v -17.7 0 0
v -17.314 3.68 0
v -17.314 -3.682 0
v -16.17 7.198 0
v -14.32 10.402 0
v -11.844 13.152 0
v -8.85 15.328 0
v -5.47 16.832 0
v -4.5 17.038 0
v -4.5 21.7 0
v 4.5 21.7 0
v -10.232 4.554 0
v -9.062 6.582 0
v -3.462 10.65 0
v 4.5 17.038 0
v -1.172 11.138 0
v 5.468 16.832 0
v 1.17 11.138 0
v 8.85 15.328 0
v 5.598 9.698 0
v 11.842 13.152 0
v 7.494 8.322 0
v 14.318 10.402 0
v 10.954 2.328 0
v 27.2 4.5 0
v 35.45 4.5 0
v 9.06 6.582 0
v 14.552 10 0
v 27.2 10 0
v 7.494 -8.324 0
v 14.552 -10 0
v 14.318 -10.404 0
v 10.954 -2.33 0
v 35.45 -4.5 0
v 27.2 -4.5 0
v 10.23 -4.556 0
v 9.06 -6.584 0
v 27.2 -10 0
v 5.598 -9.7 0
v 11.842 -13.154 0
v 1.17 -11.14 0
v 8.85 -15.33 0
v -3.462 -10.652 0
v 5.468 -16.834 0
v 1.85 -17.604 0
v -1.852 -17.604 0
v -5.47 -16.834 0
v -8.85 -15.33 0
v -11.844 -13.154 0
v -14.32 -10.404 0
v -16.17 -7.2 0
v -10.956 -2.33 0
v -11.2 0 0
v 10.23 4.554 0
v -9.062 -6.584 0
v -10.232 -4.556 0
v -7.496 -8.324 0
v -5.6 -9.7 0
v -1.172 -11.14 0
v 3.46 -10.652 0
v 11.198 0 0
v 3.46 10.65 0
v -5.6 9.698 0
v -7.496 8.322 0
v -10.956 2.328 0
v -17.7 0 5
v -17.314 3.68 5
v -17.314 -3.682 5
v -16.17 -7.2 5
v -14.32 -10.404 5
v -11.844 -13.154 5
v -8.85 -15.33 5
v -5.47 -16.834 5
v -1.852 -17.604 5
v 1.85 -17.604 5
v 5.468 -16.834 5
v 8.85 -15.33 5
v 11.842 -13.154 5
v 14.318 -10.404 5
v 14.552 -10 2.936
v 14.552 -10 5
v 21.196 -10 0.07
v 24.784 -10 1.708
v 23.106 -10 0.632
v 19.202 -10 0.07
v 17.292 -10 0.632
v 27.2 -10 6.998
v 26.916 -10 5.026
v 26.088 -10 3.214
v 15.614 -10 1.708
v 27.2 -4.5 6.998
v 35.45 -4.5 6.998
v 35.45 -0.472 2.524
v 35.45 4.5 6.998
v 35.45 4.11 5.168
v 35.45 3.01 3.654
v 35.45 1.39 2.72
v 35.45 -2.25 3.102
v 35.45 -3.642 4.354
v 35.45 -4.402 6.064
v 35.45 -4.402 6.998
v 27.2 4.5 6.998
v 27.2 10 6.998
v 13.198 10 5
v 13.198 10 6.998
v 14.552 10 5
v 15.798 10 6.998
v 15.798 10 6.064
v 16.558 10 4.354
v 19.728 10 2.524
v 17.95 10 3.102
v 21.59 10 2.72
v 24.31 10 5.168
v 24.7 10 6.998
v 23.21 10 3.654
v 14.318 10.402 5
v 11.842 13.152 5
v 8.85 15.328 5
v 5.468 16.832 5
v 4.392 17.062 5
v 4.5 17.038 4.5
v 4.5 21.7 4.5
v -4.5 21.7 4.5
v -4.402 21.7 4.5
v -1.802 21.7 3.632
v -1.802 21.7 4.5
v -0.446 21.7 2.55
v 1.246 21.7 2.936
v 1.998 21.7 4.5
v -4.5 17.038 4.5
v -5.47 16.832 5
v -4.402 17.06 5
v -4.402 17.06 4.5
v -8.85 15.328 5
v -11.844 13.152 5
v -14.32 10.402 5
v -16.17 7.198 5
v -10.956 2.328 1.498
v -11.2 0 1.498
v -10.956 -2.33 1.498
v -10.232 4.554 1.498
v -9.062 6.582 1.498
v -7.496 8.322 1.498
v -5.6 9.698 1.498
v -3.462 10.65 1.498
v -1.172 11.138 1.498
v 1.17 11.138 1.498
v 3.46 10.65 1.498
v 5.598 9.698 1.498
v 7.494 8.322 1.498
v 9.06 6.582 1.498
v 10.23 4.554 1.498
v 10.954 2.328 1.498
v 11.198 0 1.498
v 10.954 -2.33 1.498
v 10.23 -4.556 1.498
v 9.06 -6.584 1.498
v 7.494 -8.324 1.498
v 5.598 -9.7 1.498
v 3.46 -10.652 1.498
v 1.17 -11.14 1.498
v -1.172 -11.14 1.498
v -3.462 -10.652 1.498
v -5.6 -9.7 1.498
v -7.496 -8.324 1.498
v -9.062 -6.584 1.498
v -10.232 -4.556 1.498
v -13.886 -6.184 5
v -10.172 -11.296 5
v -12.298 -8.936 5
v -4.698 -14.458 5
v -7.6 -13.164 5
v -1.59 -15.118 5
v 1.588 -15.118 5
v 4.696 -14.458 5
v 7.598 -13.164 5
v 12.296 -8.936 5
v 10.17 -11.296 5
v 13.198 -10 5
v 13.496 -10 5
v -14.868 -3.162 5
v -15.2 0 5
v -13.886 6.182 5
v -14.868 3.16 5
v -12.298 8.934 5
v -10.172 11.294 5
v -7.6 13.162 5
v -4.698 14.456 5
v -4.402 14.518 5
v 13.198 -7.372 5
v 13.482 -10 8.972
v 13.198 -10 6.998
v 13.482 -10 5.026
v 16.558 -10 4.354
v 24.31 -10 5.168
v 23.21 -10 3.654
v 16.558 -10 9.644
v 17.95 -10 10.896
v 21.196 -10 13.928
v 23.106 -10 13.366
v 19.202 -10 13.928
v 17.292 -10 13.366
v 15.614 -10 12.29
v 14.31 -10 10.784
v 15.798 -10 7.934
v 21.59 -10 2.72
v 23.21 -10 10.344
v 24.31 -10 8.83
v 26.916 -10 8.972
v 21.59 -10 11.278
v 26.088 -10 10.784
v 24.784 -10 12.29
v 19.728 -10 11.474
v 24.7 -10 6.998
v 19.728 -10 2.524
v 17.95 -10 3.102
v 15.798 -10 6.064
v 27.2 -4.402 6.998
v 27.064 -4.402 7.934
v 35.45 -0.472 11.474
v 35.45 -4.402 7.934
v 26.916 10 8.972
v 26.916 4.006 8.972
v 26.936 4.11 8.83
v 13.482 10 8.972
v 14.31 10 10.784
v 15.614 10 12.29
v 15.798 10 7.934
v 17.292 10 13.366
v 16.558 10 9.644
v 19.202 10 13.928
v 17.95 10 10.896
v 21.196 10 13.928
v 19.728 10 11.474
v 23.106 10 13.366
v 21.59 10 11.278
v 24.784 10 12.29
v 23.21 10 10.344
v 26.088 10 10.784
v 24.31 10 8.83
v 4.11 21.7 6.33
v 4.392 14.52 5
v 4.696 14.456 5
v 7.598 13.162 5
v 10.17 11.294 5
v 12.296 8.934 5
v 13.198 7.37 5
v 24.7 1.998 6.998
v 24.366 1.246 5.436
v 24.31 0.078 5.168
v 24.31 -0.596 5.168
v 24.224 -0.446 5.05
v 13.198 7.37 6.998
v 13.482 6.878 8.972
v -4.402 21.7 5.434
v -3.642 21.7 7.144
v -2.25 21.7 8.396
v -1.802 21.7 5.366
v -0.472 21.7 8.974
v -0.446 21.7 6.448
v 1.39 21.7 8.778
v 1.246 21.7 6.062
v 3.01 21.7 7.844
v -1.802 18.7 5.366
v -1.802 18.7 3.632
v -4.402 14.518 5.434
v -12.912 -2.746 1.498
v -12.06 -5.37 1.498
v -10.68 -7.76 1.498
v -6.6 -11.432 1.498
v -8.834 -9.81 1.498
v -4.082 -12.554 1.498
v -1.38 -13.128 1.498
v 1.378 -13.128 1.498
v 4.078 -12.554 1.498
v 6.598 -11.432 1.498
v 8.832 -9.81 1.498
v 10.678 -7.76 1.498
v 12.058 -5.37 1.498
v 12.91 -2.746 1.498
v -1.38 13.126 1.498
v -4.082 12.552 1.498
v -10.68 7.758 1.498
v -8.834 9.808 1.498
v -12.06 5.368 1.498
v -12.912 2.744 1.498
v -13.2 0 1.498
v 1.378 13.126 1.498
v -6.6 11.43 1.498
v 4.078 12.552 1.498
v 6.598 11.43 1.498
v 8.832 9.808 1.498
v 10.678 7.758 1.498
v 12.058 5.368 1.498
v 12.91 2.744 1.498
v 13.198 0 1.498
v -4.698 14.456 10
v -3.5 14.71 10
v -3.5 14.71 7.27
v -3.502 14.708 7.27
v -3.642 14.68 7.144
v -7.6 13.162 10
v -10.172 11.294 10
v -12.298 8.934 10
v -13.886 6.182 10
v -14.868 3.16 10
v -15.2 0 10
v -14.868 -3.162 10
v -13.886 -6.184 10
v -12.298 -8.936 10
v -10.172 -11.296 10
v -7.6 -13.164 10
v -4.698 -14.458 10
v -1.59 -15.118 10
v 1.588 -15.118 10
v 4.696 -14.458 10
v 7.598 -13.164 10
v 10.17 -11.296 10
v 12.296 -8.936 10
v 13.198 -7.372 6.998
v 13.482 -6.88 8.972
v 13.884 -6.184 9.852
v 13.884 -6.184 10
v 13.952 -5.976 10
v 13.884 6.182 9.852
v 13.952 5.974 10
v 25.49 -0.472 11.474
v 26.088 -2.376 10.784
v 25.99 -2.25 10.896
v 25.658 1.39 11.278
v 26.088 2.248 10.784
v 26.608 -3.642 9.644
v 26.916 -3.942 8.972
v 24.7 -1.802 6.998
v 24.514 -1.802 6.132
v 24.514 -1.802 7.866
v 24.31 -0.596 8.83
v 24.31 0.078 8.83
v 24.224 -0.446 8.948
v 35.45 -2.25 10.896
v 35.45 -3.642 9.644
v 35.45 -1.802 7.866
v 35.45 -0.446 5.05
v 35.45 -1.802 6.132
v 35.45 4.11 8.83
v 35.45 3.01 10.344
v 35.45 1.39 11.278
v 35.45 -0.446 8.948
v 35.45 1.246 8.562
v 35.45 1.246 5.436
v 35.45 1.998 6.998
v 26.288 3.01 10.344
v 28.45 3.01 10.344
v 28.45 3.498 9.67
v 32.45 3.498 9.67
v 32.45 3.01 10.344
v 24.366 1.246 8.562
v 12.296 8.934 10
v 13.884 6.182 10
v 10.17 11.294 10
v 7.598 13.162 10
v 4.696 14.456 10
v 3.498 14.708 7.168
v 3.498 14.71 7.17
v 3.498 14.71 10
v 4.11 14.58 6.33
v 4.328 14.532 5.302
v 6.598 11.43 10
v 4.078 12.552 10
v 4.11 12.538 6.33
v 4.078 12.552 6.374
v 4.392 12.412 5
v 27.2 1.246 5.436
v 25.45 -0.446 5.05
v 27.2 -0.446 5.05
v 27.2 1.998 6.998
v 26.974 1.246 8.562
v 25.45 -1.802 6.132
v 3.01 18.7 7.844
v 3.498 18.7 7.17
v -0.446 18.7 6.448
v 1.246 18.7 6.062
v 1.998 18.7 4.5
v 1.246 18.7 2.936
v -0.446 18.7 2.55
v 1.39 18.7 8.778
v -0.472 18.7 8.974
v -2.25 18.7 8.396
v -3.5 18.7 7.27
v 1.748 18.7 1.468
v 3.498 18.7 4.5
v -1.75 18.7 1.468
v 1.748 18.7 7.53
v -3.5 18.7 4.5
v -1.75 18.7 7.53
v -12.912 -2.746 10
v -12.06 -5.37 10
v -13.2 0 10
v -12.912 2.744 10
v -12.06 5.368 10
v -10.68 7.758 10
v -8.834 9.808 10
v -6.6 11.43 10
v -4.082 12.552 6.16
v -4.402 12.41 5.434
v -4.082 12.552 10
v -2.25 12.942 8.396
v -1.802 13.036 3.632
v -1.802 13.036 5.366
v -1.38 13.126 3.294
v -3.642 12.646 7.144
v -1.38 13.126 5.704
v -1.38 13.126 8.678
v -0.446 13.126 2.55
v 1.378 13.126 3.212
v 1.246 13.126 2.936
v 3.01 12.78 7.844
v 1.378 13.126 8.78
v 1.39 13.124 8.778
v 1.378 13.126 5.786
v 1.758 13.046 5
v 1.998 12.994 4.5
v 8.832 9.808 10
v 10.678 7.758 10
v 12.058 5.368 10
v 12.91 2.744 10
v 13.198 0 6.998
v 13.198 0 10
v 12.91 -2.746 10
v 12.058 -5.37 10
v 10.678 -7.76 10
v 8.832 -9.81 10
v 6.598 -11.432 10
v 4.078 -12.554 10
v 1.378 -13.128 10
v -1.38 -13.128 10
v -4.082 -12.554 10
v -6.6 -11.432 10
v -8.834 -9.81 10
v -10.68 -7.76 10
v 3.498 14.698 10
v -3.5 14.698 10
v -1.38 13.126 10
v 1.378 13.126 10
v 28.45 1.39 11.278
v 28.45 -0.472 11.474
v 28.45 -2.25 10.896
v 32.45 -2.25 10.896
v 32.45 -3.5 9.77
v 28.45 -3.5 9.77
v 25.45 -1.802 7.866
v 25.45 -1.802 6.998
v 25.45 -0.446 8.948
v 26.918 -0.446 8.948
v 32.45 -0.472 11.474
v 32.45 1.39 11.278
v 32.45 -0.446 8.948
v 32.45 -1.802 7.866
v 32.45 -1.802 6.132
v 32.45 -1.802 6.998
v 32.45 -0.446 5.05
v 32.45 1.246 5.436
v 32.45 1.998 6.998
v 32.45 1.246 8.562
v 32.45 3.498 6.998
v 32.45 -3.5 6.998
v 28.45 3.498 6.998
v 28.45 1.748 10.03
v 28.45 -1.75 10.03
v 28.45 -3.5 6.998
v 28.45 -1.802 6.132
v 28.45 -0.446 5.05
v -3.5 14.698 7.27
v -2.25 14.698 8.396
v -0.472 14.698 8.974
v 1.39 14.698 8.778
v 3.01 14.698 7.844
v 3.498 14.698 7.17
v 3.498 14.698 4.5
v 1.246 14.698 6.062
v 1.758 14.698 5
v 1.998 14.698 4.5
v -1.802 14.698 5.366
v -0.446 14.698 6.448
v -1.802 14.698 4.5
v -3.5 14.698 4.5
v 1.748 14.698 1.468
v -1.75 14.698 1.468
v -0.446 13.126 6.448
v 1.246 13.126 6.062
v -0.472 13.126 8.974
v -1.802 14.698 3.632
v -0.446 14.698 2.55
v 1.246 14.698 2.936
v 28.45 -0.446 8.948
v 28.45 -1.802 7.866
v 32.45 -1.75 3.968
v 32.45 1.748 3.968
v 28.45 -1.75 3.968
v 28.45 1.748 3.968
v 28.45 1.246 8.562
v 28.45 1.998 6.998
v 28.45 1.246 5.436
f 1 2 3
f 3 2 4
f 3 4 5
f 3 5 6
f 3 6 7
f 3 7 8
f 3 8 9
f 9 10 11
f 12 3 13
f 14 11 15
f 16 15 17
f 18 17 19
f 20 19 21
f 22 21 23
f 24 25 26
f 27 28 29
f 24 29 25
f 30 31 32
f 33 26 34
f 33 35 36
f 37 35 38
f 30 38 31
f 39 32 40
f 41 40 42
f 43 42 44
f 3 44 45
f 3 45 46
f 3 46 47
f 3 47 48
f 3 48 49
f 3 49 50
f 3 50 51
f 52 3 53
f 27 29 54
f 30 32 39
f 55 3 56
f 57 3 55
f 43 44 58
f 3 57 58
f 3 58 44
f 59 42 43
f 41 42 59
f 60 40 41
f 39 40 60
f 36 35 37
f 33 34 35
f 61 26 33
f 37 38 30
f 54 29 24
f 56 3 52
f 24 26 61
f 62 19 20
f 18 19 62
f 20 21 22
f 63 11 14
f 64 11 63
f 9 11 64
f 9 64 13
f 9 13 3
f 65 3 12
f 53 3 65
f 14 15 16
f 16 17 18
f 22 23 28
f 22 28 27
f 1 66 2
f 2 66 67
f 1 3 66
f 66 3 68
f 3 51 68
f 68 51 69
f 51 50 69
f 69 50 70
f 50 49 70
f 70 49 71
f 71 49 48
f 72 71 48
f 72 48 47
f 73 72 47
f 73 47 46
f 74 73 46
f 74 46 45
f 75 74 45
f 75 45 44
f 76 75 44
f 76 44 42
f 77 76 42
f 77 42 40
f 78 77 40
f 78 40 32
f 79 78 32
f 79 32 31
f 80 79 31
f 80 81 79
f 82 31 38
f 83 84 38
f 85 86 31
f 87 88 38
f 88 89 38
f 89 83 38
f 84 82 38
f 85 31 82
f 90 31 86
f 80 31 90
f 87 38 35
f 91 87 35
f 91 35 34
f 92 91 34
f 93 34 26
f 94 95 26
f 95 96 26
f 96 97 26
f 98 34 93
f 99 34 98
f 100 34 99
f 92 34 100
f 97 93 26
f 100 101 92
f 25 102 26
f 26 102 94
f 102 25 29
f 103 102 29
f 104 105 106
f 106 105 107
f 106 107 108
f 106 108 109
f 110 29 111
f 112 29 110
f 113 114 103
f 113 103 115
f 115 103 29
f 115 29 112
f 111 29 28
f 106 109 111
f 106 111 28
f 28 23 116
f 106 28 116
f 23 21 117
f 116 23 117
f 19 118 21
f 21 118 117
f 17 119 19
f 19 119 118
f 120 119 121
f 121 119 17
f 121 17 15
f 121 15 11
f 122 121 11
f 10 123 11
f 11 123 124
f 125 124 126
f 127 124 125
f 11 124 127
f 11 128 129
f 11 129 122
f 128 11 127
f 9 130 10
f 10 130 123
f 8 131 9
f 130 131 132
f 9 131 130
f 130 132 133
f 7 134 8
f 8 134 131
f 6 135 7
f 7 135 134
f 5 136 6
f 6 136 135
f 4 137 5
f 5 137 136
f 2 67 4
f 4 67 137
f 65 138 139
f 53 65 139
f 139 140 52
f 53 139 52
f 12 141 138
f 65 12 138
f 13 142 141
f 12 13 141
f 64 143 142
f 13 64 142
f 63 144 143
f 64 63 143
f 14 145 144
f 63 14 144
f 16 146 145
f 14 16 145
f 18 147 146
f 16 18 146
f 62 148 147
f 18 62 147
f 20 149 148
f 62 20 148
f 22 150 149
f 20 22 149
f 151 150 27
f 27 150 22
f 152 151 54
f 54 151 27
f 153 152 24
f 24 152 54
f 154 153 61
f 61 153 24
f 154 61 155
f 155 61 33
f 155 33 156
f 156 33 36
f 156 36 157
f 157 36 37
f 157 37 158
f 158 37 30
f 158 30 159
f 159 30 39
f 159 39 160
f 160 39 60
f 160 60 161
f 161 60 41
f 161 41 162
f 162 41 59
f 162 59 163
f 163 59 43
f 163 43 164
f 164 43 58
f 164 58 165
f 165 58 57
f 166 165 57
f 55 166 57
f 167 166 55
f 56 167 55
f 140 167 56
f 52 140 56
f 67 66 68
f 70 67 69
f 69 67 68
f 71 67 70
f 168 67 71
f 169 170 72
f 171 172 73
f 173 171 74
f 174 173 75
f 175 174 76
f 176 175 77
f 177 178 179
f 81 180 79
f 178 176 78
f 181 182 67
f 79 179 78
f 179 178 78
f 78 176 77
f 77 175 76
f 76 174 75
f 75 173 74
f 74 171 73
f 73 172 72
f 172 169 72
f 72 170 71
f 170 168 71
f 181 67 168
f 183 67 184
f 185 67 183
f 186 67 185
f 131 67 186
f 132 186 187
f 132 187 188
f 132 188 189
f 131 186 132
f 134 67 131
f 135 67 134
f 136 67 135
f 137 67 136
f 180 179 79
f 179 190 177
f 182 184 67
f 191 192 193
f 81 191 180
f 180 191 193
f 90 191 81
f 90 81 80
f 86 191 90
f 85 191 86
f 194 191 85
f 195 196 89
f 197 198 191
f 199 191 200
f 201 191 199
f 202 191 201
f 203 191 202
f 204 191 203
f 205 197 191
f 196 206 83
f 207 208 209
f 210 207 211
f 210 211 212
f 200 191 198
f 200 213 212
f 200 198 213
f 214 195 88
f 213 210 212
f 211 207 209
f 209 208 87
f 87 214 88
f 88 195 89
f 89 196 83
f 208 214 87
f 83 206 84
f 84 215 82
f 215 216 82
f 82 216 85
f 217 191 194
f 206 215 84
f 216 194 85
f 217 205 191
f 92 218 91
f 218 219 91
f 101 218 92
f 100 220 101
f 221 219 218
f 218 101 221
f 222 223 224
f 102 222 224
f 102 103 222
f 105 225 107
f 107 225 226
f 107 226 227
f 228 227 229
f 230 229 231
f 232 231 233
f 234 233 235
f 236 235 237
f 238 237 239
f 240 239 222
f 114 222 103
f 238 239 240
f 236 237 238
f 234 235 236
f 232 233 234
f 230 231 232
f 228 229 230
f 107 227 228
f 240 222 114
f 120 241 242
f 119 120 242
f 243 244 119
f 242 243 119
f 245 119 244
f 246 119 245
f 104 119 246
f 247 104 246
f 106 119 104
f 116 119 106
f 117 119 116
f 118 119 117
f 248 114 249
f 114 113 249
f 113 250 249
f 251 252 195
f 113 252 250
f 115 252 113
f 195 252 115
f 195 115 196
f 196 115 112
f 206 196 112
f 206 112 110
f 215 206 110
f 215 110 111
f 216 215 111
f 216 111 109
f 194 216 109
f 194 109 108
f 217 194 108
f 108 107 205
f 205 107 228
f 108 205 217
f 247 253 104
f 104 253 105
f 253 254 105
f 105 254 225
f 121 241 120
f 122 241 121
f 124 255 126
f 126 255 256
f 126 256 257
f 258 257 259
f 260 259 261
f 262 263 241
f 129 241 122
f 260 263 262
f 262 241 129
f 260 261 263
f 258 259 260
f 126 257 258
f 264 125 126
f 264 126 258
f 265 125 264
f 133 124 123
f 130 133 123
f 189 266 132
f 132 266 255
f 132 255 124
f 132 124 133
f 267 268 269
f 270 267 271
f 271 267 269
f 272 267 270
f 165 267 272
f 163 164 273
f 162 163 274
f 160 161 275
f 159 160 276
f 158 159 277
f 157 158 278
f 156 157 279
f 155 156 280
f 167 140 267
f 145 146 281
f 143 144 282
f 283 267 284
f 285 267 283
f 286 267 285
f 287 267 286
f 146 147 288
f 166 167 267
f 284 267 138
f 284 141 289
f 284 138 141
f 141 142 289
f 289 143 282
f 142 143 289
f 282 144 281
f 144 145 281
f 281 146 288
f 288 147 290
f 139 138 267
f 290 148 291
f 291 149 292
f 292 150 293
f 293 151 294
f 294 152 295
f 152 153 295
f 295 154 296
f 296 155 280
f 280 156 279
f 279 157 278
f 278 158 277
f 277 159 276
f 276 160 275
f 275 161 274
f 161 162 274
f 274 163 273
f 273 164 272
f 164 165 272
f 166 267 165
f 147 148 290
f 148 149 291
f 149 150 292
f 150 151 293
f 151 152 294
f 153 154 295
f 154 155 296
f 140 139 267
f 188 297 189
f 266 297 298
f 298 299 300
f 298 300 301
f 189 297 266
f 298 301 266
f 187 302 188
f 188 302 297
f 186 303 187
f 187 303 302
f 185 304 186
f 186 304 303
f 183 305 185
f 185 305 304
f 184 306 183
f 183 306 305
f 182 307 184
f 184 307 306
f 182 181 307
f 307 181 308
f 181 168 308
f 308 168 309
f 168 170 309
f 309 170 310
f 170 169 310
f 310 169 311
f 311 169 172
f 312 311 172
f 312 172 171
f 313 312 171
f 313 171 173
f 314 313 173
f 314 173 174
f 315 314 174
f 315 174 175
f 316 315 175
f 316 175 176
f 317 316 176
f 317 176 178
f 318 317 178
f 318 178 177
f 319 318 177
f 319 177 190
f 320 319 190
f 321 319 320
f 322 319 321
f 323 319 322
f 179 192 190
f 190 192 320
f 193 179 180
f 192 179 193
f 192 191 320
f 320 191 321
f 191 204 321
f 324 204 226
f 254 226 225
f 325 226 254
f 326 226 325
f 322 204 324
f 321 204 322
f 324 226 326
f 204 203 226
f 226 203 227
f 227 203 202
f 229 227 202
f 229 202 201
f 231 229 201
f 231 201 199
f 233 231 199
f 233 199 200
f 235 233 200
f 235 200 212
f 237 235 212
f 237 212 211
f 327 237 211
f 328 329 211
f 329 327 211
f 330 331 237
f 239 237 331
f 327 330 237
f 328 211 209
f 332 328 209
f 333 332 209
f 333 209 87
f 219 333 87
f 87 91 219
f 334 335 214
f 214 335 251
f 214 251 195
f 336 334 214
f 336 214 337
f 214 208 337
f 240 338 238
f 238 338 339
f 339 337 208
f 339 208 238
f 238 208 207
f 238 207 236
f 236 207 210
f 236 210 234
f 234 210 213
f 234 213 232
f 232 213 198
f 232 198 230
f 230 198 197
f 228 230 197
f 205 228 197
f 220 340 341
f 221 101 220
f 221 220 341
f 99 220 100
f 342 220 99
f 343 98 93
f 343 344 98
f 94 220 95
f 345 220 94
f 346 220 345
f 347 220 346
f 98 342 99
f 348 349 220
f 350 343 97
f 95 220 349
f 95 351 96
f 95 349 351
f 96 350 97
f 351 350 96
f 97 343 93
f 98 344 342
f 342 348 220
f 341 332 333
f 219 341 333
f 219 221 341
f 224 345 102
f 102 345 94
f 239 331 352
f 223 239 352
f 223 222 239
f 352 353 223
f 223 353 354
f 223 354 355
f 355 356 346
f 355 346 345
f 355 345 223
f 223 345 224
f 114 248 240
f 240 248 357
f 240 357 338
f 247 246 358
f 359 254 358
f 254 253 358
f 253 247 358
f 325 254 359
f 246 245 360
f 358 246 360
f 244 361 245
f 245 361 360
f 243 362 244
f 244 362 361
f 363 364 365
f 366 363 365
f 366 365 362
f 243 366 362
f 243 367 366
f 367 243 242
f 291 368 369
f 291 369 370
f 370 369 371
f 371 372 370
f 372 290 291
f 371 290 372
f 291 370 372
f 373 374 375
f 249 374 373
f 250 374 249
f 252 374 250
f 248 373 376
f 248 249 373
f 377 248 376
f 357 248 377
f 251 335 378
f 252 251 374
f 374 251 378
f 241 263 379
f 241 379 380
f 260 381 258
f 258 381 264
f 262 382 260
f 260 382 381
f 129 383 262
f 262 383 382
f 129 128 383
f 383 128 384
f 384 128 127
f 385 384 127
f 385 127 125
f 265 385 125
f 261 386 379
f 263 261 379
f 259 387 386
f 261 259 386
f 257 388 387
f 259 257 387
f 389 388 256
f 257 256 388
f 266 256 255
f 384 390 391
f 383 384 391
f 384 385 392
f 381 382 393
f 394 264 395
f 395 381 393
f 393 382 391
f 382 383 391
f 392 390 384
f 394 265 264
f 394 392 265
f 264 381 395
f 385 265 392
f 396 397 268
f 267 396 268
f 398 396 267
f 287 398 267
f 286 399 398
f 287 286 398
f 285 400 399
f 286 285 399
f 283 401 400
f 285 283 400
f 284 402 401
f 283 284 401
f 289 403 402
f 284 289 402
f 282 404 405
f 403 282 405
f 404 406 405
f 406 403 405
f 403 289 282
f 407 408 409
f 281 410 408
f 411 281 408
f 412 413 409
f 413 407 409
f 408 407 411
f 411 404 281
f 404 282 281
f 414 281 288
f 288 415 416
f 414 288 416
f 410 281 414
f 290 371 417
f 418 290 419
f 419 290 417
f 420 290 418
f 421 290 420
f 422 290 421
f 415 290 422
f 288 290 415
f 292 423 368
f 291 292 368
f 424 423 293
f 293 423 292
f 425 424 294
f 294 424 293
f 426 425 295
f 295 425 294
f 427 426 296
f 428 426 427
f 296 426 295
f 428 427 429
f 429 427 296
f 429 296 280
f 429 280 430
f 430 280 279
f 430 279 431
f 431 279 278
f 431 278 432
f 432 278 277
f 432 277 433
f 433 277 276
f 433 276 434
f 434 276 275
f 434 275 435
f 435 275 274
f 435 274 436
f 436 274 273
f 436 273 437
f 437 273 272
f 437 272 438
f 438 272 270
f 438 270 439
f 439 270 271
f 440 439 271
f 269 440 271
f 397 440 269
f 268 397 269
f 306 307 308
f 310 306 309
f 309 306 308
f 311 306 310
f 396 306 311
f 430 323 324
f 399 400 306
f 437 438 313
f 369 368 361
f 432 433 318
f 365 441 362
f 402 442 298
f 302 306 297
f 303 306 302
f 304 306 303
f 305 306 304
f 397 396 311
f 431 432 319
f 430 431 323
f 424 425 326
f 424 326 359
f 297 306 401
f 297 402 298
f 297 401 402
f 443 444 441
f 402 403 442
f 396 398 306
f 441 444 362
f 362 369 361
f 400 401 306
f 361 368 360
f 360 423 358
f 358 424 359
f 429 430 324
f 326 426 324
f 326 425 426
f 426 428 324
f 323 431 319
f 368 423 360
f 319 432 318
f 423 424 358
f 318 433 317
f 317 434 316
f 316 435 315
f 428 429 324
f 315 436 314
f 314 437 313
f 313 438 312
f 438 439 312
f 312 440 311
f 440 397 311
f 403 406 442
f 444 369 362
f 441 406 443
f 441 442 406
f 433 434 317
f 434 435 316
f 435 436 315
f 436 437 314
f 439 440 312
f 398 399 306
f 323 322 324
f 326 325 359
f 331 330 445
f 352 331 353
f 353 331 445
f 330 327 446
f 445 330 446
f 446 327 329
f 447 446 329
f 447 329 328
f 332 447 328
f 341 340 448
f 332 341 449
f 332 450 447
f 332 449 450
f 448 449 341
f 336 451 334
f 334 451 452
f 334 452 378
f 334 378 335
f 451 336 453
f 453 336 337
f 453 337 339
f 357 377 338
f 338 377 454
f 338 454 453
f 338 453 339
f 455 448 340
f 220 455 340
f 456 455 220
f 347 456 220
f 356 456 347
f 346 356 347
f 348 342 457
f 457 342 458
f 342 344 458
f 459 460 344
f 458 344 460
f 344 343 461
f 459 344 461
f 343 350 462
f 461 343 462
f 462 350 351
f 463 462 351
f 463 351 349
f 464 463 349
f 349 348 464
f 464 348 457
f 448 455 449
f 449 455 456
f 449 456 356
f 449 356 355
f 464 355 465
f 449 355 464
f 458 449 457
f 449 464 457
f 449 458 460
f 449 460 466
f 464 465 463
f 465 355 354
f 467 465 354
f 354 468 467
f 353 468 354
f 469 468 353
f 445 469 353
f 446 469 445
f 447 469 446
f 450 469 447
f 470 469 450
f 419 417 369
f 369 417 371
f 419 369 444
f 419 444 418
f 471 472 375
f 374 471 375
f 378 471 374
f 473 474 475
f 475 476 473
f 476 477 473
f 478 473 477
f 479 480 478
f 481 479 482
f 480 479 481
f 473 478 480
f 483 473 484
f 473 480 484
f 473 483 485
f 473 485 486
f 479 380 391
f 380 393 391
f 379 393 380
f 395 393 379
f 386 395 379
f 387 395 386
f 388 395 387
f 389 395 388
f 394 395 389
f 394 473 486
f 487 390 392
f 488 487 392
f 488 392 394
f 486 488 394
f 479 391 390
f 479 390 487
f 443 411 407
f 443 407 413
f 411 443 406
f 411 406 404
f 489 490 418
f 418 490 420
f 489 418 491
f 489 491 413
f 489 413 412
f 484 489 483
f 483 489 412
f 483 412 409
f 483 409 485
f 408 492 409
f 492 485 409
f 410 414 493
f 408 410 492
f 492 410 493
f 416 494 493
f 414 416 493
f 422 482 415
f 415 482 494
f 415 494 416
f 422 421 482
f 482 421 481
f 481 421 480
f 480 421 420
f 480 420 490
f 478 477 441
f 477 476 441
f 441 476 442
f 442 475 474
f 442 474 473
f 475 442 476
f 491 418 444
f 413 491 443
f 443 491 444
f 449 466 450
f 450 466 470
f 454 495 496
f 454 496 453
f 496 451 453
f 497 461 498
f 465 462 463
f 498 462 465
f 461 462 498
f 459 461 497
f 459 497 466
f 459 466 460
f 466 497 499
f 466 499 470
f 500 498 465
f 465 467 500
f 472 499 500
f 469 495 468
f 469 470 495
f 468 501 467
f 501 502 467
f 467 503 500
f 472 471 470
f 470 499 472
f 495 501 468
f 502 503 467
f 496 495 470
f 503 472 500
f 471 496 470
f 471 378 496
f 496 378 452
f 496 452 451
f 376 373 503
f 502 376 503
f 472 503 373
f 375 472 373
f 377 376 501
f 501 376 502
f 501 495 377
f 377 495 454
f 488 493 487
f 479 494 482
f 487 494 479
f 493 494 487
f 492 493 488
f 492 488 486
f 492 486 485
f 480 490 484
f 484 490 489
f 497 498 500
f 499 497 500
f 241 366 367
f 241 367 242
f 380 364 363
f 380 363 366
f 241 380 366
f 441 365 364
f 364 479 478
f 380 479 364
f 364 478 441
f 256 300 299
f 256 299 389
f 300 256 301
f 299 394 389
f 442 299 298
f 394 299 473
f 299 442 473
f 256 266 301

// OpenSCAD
x=25.4; //Diameter of the Lens
y=10;   //Lens holder Thickness
z=3;     //Lens Holder Lip Size
X=25; //Base Diameter
Y=25;  //Base Height
a=3; //Set Screw Diameter
b=6; //Set Screw Nut Daimeter
c=3; //Set Screw Nut Thickness
d=8; //Guide Rod Diameter
e=20; //Guide Rod Length
f=3;    // Thumb Screw Head Height
g=6;   //Thumb Screw Head Diameter
i=3;    //Thumb Screw Diameter
j=3;    //PL Board Hole Diameter
lens_holder();

module thumbscrew(){
difference(){
cylinder(f+2,(g+6)/2, (g+6)/2);
translate([0,0,2])cylinder(5,(g+1)/2, (g+1)/2);
cylinder(5,(i+1)/2, (i+1)/2);
}
difference(){
	for ( i = [0 :8] ){
					rotate( i * 360 / 8, [0, 0, 1])
					translate([(g+6)/2,0,0])
					cylinder(5,3,3);
		}	
translate([0,0,2])cylinder(5,(g+1)/2, (g+1)/2);
}
}

module mount(){
difference(){
cylinder((2/5)*Y,X/2,X/2);
translate([0,0,(1/5)*Y])cylinder(Y,(d+1)/2,(d+1)/2);
}
difference(){
translate([0,0,(2/5)*Y])cylinder((2/5)*Y,X/2,(d+6)/2);
cylinder(Y,(d+1)/2,(d+1)/2);

}
difference(){
translate([0,0,(4/5)*Y])cylinder((1/5)*Y,(d+6)/2,(d+6)/2);
cylinder(Y,(d+1)/2,(d+1)/2);

}
difference(){
translate([0,(X/2)+3,0])cylinder(5,(j+6)/2, (j+6)/2);
translate([0,(X/2)+3,0])cylinder(5,(j+1)/2, (j+1)/2);
}
difference(){
translate([0,(X/2)-2,5/2])cube([j+6,j+6,5],center = true);
translate([0,(X/2)+3,0])cylinder(5,(j+1)/2, (j+1)/2);
}
}

module lens_holder(){
difference(){
cylinder(y/2,(x+10)/2,(x+10)/2);
cylinder((y+2)/2,(x-3)/2,(x-3)/2);
translate([0,0,1.5])cylinder((y+2)/2,(x+1)/2,(x+1)/2);
translate([0,(x+10)/2+5,(b+3)/2])rotate([90,0,0])cylinder(10,(a+1)/2,(a+1)/2);
translate([0,(x+8)/2,(b+3)/2])nuttrap();
translate([(x+15)/2,e/2,(d+6)/2])rotate([90,0,0])cylinder(e,(d+6)/2, (d+6)/2);
}
difference(){
translate([0,0,y/2])cylinder((y)/2,(x+5)/2,(x+5)/2);
cylinder((y)*2,(x+1)/2,(x+1)/2);
translate([0,(x+10)/2+5,(b+3)/2])rotate([90,0,0])cylinder(25,(b+3)/2,(b+3)/2);
translate([0,(x+8)/2,(b+3)/2])nuttrap();
}
difference(){
translate([0,(x+8)/2,0])set_screw((b+3)/2);
cylinder((y+2),(x+1)/2,(x+1)/2);
}
difference(){
translate([(x+15)/2,0,0])guide_rod();
rotate([0,0,90]){
#translate([0,((x+7)/-2)-((d)),(d+6)/2])rotate([90,0,0])cylinder(50,(a+1)/2,(a+1)/2);
translate([((x+7.5)/2)+((d+6)),0,0])rotate([0,0,90])set_screw1((d+6)/2);
}
}
translate([((x+7.5)/2)+((d+6)),0,0])rotate([0,0,90])set_screw((d+6)/2);
}

module guide_rod(){
difference(){
translate([0,e/2,(d+6)/2])rotate([90,0,0])cylinder(e,(d+6)/2, (d+6)/2);
translate([0,(e/2)+1,(d+6)/2])rotate([90,0,0])cylinder(e+2,(d+1)/2, (d+1)/2);
}
difference(){
translate([0,0,(d+6)/4])cube([(d+6),e,(d+6)/2], center = true);
translate([0,(e/2)+1,(d+6)/2])rotate([90,0,0])cylinder(e+2,(d+1)/2, (d+1)/2);
}
}

module set_screw(h){
difference(){
translate([0,5,h])rotate([90,0,0])cylinder(10,(b+3)/2, (b+3)/2);
#translate([0,10,h])rotate([90,0,0])cylinder(200,(a+1)/2, (a+1)/2);
translate([0,0,h])nuttrap();
}
difference(){
translate([0,0,h/2])cube([(b+3),10,h], center = true);
translate([0,6,h])rotate([90,0,0])cylinder(12,(a+1)/2, (a+1)/2);
translate([0,0,h])nuttrap();
}
}
module set_screw1(h){
translate([0,5,h])rotate([90,0,0])cylinder(10,(b+3)/2, (b+3)/2);
translate([0,0,h/2])cube([(b+3),10,h], center = true);

}



module nuttrap(){
translate([0,(c+1)/2,0])rotate([90,0,0])hexagon(c+1,(b+1)/2);
translate([0,0,(b*3)/2])cube([b+1,c+1,b*3],center = true);
}

module reg_polygon(sides,radius)
{
  function dia(r) = sqrt(pow(r*2,2)/2);  //sqrt((r*2^2)/2) if only we had an exponention op
  if(sides<2) square([radius,0]);
  if(sides==3) triangle(radius);
  if(sides==4) square([dia(radius),dia(radius)],center=true);
  if(sides>4) circle(r=radius,$fn=sides);
}

module hexagonf(radius)
{
  reg_polygon(6,radius);
}

module hexagon(height,radius) 
{
  linear_extrude(height=height) hexagonf(radius);
}
